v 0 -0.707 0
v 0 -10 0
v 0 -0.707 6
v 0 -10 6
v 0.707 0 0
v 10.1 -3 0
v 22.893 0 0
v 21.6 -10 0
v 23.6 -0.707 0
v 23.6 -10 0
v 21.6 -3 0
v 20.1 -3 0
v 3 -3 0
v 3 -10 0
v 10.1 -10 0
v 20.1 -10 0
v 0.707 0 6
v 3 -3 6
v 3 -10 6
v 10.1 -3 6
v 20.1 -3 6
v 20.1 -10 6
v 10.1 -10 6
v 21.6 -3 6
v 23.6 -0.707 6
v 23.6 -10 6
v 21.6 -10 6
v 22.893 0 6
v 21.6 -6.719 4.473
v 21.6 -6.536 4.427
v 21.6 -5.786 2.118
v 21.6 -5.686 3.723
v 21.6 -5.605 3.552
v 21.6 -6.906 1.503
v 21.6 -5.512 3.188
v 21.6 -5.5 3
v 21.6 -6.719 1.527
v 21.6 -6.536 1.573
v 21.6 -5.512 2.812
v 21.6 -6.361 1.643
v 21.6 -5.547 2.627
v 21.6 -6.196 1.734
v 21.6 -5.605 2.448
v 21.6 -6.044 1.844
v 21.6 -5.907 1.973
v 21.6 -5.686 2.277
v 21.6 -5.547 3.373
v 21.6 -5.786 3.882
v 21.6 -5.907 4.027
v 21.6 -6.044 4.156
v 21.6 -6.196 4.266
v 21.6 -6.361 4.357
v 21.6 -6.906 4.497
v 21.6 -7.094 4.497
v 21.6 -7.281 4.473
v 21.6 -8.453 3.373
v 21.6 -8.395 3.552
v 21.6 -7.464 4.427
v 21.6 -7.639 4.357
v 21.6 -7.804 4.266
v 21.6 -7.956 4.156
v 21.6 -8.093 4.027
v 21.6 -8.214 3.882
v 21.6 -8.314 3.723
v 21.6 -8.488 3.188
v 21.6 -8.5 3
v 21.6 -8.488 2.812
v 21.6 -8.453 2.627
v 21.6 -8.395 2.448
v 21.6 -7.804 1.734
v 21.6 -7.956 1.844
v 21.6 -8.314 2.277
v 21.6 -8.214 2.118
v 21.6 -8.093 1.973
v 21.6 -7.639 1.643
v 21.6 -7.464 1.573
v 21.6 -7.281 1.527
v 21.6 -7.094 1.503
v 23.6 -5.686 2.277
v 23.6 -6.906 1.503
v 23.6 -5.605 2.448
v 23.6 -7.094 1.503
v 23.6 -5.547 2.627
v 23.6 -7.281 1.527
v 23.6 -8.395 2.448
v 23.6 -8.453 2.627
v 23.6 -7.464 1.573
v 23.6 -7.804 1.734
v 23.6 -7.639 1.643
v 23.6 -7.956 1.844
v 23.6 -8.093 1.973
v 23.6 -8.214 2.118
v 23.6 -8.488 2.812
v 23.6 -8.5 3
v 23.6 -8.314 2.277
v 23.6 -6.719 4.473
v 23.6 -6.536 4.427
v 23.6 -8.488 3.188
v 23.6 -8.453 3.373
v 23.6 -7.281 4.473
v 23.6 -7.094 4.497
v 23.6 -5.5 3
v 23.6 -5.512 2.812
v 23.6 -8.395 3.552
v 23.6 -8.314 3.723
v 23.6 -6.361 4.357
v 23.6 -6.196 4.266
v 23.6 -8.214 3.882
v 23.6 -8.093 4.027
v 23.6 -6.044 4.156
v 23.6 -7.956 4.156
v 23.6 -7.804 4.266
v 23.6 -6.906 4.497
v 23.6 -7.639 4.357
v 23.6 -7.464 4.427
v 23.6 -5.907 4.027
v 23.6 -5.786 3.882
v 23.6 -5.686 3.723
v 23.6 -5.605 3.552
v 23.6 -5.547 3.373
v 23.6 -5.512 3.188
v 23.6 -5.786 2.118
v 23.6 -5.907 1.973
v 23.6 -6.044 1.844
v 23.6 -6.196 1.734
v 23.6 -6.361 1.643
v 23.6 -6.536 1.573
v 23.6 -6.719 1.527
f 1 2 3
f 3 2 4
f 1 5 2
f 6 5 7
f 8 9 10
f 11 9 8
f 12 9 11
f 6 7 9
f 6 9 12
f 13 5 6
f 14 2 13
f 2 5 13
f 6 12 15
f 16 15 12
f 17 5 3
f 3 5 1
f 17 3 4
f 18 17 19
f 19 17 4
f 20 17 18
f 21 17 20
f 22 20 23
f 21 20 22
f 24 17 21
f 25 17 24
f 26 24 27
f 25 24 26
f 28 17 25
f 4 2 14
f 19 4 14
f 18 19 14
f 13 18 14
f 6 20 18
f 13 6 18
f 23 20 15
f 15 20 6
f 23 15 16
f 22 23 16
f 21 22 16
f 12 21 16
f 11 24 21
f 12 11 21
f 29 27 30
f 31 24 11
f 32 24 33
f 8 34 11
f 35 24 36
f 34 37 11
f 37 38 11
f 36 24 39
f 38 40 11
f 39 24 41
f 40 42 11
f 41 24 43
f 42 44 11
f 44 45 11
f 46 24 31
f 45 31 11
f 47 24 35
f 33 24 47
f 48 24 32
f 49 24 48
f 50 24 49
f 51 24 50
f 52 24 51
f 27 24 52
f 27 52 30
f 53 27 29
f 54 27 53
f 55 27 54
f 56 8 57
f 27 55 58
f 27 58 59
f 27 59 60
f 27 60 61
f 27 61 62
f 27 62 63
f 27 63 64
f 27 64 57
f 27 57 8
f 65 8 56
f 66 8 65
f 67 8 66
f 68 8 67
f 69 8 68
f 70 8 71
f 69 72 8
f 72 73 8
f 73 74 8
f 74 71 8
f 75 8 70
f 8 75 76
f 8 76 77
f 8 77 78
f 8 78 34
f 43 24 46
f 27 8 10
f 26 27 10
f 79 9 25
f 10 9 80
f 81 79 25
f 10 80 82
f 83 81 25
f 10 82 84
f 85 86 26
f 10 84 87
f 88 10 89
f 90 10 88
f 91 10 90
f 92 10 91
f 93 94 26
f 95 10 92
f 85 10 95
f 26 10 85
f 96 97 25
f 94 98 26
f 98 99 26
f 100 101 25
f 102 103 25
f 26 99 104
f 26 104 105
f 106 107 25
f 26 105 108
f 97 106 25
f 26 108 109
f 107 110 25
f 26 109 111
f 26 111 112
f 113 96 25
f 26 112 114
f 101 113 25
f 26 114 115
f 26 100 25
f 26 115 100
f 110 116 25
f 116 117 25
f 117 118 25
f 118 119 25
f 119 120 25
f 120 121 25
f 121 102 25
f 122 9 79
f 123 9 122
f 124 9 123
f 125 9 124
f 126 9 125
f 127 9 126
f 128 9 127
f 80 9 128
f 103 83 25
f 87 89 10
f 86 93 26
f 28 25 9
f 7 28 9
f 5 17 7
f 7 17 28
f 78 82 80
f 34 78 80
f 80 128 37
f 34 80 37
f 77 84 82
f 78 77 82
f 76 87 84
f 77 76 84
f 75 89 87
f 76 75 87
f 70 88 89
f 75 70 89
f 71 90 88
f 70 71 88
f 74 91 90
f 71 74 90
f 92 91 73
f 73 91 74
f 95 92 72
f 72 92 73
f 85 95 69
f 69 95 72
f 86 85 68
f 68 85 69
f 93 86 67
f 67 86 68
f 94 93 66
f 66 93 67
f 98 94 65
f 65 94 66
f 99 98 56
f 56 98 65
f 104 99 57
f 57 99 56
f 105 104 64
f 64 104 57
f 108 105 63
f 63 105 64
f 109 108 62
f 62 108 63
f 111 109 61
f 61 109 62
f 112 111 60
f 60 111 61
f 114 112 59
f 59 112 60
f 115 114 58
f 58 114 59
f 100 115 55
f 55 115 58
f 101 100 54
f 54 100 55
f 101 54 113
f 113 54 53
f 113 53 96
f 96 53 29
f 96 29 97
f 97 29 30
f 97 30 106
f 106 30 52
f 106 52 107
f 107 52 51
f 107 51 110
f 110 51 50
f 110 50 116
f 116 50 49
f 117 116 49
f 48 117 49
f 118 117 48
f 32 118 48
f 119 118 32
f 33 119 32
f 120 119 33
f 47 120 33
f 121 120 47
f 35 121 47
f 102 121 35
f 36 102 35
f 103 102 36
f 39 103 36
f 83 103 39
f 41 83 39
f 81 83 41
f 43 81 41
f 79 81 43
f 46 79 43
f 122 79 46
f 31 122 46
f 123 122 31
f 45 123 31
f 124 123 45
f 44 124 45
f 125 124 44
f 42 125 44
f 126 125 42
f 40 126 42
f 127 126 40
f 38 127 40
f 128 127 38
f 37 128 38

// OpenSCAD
$fn = 50;

// Prusa Frame thickness 6.25
ft = 7.1;
// Pi Circuit Board Thickness 1.5
pt = 1.5;
// offset thickness
ot = 10;
// part thickness
mt = 3;

rotate(a=90, v=[1,0,0]){

difference() {
	cube([mt+ot+ft+pt+2, 6, 7+mt]);
	translate([mt,-1,mt])
		cube([ft, 8, 8]);
	translate([mt+ot+ft, -1, mt])
		cube([pt, 8, 8]);

rotate(v=[0,1,0], a=-45)
translate([0,-1,-1])
	cube([.5,8,2]);

translate([mt+ot+ft+pt+2,0,0])
rotate(v=[0,1,0], a=45)
	cube([1,16,2], true);


translate([mt+ot+ft+pt-1, 3, 7])
rotate(v=[0,1,0], a= 90)
	cylinder(r=1.5, h=4);

}
}
